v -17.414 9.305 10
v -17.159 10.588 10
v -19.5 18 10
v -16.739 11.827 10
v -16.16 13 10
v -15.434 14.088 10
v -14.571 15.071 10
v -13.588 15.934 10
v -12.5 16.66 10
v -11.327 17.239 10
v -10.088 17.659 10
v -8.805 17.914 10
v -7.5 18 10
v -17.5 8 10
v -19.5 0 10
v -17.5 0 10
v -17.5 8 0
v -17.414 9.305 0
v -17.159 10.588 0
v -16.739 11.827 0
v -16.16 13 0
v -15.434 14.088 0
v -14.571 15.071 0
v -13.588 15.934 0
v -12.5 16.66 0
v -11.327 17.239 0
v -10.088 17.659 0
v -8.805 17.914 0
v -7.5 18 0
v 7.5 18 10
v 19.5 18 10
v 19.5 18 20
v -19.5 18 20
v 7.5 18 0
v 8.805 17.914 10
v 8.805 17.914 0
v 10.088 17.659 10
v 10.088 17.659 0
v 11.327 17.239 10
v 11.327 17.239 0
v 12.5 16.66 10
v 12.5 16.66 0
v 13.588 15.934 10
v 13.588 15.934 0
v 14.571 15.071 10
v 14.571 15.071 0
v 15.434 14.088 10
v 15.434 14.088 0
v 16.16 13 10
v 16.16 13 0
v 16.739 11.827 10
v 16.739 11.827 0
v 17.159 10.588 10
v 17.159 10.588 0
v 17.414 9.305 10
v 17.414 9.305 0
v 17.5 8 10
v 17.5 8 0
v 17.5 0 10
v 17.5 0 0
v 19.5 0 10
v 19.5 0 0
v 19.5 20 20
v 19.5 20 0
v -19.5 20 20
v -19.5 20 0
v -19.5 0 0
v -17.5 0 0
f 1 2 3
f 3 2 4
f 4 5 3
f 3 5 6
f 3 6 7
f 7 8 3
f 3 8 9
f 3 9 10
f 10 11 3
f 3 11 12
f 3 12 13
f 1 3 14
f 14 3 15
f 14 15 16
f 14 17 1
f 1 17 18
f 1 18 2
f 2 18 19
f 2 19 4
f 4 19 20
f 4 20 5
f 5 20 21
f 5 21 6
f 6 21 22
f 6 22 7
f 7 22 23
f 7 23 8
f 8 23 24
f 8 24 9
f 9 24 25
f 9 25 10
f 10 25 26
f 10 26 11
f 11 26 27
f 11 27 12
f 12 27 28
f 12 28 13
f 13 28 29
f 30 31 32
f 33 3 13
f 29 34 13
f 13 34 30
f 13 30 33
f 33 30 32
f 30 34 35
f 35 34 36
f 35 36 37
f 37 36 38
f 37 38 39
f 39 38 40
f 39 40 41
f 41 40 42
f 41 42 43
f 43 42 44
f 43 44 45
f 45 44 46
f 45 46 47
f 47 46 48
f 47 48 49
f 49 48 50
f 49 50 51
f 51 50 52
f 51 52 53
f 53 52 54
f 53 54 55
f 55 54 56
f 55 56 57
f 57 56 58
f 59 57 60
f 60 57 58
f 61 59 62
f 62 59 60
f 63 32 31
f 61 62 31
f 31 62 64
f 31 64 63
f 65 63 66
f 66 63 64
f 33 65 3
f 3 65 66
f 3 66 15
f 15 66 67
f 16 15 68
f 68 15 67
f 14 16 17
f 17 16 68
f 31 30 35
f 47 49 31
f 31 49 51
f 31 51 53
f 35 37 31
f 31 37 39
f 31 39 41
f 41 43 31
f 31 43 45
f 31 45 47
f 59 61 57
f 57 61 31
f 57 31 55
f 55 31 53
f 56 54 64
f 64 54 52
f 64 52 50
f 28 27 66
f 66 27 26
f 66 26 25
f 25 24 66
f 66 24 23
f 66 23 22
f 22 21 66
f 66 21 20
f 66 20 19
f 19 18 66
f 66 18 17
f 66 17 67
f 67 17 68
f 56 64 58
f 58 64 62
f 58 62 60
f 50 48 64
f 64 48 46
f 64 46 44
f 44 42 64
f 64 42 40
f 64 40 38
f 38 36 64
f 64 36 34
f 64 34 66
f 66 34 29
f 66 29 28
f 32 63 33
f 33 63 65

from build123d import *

# Parameters (mm, degrees)
BOSS_EXTRUDE1_DEPTH = 10
SKETCH2_W           = 39
SKETCH2_H           = 2
BOSS_EXTRUDE2_DEPTH = 10


with BuildPart() as part:
    # Sketch1 → Boss-Extrude1 (new body)
    with BuildSketch(Plane.XY):
        with BuildLine():
            Line((-19.5, 20), (-19.5, 0))
            Line((-19.5, 0), (-17.5, 0))
            Line((-17.5, 0), (-17.5, 8))
            ThreePointArc((-17.5, 8), (-14.571067812, 15.071067812), (-7.5, 18))
            Line((-7.5, 18), (7.5, 18))
            ThreePointArc((7.5, 18), (14.571067812, 15.071067812), (17.5, 8))
            Line((17.5, 8), (17.5, 0))
            Line((17.5, 0), (19.5, 0))
            Line((19.5, 0), (19.5, 20))
            Line((19.5, 20), (-19.5, 20))
        make_face()
    extrude(amount=BOSS_EXTRUDE1_DEPTH)

    # Sketch2 → Boss-Extrude2 (add)
    with BuildSketch(Plane.XY.offset(10)):
        with Locations((0, 19)):
            Rectangle(SKETCH2_W, SKETCH2_H)
    extrude(amount=BOSS_EXTRUDE2_DEPTH)


solid = part.part
